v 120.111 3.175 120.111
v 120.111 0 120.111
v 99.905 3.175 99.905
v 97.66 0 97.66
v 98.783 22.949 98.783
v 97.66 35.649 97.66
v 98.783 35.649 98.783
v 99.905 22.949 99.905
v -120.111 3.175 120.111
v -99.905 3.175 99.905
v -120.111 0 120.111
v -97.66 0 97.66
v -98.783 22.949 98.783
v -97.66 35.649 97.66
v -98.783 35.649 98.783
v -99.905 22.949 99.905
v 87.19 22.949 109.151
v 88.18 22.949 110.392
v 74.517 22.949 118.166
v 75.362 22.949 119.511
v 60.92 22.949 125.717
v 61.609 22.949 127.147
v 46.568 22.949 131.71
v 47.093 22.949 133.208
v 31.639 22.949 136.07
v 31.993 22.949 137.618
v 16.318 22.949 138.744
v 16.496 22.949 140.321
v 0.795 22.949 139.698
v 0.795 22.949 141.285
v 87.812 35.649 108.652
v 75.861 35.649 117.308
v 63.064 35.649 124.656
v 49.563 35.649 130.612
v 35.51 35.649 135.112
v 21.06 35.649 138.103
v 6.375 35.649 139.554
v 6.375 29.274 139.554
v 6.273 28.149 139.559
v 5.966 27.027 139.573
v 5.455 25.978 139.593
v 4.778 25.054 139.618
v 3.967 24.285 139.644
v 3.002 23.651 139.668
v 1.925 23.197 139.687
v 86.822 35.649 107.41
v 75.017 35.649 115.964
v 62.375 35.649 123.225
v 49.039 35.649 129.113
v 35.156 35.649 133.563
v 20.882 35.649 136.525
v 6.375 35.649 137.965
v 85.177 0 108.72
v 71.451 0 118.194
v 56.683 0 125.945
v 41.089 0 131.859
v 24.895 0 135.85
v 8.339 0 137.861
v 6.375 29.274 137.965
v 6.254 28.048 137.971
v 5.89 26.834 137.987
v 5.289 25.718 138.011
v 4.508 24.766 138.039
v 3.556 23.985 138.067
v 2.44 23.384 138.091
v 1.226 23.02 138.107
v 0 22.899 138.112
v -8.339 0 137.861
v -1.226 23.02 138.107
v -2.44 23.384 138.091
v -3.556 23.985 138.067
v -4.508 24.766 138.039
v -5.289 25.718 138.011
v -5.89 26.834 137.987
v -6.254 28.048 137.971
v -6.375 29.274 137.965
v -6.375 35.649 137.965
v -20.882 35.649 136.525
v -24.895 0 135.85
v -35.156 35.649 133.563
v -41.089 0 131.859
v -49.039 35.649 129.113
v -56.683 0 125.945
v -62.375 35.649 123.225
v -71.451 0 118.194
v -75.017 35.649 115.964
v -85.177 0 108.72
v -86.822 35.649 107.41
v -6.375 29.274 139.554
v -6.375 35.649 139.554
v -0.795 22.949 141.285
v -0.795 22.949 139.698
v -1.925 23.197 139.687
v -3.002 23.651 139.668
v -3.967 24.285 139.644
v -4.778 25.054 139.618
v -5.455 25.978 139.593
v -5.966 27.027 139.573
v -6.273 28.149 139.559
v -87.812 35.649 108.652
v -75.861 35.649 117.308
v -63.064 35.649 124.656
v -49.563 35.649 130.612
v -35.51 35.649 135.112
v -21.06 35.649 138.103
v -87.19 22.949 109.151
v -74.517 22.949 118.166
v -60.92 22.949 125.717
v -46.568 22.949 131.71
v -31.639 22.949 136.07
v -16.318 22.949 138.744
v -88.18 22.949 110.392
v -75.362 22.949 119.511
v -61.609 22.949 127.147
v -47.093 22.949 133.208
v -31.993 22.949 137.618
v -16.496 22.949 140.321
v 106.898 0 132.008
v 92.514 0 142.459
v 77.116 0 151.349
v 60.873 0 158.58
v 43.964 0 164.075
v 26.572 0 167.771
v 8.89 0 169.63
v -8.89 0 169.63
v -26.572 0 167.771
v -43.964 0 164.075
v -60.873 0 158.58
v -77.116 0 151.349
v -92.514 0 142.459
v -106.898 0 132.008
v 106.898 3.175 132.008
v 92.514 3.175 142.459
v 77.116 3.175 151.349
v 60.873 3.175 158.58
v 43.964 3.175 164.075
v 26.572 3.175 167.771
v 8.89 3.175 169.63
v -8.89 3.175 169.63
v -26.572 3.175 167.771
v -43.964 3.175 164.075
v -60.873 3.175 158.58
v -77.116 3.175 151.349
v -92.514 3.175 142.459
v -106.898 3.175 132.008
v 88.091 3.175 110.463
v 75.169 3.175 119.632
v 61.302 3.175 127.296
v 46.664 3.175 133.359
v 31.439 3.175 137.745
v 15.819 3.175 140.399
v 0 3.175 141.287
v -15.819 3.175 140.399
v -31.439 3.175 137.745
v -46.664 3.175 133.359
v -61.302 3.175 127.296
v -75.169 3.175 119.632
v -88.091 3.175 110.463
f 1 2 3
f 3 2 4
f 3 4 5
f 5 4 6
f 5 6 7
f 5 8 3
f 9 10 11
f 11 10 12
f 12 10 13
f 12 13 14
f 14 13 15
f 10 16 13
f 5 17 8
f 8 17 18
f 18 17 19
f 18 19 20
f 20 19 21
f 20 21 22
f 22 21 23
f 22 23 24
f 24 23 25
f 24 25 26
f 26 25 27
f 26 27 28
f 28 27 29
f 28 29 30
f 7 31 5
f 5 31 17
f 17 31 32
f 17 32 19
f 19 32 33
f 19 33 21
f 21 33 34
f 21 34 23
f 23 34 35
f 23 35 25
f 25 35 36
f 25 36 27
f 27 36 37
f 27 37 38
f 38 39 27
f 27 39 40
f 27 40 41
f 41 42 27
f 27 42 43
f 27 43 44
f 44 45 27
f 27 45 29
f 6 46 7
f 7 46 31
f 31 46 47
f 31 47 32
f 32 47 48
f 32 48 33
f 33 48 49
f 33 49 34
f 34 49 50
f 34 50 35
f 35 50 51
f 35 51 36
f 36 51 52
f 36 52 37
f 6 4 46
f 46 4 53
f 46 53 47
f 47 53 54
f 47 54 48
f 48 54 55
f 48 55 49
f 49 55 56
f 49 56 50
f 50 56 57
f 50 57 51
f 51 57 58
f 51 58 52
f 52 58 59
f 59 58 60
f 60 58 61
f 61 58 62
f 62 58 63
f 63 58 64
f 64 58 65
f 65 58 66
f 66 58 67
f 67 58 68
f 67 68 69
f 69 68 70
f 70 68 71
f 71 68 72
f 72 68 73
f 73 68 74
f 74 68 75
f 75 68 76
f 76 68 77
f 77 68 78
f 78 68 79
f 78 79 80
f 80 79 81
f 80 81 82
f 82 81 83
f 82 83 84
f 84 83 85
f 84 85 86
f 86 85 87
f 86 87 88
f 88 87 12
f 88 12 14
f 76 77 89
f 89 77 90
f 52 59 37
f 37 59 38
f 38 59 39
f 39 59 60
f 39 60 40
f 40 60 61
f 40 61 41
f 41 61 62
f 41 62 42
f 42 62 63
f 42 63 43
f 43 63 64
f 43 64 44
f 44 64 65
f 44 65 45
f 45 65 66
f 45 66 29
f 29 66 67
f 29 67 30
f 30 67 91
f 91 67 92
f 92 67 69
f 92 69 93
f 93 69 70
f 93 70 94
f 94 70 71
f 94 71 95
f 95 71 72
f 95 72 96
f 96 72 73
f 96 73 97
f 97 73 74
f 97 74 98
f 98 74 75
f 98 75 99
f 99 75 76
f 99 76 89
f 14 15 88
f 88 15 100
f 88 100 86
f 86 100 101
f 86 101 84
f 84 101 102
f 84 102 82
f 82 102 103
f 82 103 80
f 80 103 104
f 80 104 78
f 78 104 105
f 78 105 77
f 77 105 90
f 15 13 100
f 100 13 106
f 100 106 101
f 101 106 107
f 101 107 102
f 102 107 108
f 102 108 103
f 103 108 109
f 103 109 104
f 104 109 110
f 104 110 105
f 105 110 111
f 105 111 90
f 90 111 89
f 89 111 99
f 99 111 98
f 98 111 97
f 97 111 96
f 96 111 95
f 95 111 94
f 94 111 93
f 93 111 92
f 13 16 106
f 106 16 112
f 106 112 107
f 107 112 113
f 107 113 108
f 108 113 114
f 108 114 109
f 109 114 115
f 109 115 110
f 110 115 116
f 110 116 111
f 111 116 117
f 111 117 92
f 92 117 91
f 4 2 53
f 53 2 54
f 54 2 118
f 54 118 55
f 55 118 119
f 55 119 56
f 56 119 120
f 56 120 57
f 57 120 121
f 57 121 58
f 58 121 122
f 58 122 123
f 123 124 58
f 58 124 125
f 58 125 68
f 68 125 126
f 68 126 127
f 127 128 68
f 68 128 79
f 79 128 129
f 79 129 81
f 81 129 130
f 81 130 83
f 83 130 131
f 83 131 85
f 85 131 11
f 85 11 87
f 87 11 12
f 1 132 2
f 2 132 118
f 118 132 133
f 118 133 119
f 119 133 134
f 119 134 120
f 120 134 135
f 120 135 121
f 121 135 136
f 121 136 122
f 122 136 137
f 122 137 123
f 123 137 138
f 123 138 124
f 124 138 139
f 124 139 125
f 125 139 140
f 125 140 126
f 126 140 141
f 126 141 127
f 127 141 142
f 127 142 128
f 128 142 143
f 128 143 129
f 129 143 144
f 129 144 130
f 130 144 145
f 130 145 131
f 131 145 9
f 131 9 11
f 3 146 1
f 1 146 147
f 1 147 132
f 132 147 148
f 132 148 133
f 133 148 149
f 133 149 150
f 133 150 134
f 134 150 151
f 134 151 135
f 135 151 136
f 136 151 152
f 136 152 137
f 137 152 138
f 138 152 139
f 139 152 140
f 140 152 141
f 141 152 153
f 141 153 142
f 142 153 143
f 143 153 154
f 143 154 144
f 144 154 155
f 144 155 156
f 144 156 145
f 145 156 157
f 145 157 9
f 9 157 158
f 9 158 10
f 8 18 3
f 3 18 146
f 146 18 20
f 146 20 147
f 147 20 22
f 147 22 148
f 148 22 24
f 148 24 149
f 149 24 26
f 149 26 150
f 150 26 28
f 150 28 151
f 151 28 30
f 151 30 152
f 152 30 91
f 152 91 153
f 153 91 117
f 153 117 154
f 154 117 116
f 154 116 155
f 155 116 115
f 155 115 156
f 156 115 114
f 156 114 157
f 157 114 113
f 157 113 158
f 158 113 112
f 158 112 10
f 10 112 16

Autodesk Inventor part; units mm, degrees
ref_plane "YZ Plane" through (0, 0, 0) normal (1, 0, 0) x (0, 1, 0)
ref_plane "XZ Plane" through (0, 0, 0) normal (0, 1, 0) x (-1, 0, 0)
ref_plane "XY Plane" through (0, 0, 0) normal (0, 0, 1) x (1, 0, 0)
sketch "Sketch1" plane through (0, 0, 0) normal (1, 0, 0) x (0, 1, 0)
  line L0 (0, 0) -> (50.8, 0)
  line L1 (0, 138.1125) -> (26.719, 138.1125)
  line L2 (0, 138.1125) -> (0, 169.8625)
  line L3 (0, 169.8625) -> (3.175, 169.8625)
  line L4 (3.175, 169.8625) -> (3.175, 141.2875)
  line L5 (3.175, 141.2875) -> (22.9489, 141.2875)
  line L6 (60.325, 141.2875) -> (60.325, 179.3875)
  line L7 (60.325, 179.3875) -> (63.5, 179.3875)
  line L8 (63.5, 179.3875) -> (63.5, 138.1125)
  line L9 (35.6489, 138.1125) -> (26.719, 138.1125)
  line L10 (29.2989, 139.7) -> (22.9489, 139.7)
  line L11 (22.9489, 139.7) -> (22.9489, 141.2875)
  line L12 (29.2989, 139.7) -> (35.6489, 139.7)
  line L13 (35.6489, 139.7) -> (35.6489, 138.1125)
  line L14 (29.2989, 166.1379) -> (29.2989, 141.2875)
  line L15 (29.2989, 138.1125) -> (29.2989, 120.1049)
  point P0 (62.1333, 179.3875)
  point P1 (1.5875, 169.8625)
  dimension "d0" = 50.8
  dimension "d1" = 138.1125
  dimension "d2" = 31.75
  dimension "d3" = 3.175
  dimension "d4" = 3.175
  dimension "d5" = 57.15
  dimension "d6" = 38.1
  dimension "d7" = 3.175
  dimension "d13" = 26.1239
  dimension "d14" = 1.5875
  dimension "d15" = 6.35
  dimension "d16" = 6.35
revolve "Revolution1" add sketch "Sketch1" angle 360 about axis through (0, 0, 0) along (0, 1, 0)
ref_plane "Work Plane2" through (0, 1.5875, 169.8625) normal (0, 0, 1) x (1, 0, 0)
sketch "Sketch3" plane through (0, 1.5875, 169.8625) normal (0, 0, 1) x (1, 0, 0)
  arc A0 (-6.3749, 27.6865) -> (6.3749, 27.6865) centre (0, 27.6865) ccw
  line L0 (138.1125, 34.0614) -> (-138.1125, 34.0614) projected
  line L1 (-6.3749, 27.6865) -> (-6.3749, 34.0614)
  line L2 (6.3749, 27.6865) -> (6.3749, 34.0614)
  point P0 (0, -1.5875)
  point P1 (0, 17.4621)
extrude "Extrusion2" cut sketch "Sketch3" against normal through all
sketch "Sketch4" plane through (0, 0, 0) normal (0, -1, 0) x (1, 0, 0)
  line L0 (0, 0) -> (-198.1259, 198.1259)
  line L1 (0, 0) -> (280.1923, 0) construction
  line L2 (-198.1259, 198.1259) -> (-198.1259, -227.7187)
  line L3 (-198.1259, -227.7187) -> (214.1573, -227.7187)
  line L4 (0, 0) -> (198.1259, 198.1259)
  line L5 (198.1259, 198.1259) -> (214.1573, -227.7187)
  dimension "d19" = 135
  dimension "d20" = 90
extrude "Extrusion3" cut sketch "Sketch4" against normal through all
properties part number "Layer2_Bottom_Quarter"
